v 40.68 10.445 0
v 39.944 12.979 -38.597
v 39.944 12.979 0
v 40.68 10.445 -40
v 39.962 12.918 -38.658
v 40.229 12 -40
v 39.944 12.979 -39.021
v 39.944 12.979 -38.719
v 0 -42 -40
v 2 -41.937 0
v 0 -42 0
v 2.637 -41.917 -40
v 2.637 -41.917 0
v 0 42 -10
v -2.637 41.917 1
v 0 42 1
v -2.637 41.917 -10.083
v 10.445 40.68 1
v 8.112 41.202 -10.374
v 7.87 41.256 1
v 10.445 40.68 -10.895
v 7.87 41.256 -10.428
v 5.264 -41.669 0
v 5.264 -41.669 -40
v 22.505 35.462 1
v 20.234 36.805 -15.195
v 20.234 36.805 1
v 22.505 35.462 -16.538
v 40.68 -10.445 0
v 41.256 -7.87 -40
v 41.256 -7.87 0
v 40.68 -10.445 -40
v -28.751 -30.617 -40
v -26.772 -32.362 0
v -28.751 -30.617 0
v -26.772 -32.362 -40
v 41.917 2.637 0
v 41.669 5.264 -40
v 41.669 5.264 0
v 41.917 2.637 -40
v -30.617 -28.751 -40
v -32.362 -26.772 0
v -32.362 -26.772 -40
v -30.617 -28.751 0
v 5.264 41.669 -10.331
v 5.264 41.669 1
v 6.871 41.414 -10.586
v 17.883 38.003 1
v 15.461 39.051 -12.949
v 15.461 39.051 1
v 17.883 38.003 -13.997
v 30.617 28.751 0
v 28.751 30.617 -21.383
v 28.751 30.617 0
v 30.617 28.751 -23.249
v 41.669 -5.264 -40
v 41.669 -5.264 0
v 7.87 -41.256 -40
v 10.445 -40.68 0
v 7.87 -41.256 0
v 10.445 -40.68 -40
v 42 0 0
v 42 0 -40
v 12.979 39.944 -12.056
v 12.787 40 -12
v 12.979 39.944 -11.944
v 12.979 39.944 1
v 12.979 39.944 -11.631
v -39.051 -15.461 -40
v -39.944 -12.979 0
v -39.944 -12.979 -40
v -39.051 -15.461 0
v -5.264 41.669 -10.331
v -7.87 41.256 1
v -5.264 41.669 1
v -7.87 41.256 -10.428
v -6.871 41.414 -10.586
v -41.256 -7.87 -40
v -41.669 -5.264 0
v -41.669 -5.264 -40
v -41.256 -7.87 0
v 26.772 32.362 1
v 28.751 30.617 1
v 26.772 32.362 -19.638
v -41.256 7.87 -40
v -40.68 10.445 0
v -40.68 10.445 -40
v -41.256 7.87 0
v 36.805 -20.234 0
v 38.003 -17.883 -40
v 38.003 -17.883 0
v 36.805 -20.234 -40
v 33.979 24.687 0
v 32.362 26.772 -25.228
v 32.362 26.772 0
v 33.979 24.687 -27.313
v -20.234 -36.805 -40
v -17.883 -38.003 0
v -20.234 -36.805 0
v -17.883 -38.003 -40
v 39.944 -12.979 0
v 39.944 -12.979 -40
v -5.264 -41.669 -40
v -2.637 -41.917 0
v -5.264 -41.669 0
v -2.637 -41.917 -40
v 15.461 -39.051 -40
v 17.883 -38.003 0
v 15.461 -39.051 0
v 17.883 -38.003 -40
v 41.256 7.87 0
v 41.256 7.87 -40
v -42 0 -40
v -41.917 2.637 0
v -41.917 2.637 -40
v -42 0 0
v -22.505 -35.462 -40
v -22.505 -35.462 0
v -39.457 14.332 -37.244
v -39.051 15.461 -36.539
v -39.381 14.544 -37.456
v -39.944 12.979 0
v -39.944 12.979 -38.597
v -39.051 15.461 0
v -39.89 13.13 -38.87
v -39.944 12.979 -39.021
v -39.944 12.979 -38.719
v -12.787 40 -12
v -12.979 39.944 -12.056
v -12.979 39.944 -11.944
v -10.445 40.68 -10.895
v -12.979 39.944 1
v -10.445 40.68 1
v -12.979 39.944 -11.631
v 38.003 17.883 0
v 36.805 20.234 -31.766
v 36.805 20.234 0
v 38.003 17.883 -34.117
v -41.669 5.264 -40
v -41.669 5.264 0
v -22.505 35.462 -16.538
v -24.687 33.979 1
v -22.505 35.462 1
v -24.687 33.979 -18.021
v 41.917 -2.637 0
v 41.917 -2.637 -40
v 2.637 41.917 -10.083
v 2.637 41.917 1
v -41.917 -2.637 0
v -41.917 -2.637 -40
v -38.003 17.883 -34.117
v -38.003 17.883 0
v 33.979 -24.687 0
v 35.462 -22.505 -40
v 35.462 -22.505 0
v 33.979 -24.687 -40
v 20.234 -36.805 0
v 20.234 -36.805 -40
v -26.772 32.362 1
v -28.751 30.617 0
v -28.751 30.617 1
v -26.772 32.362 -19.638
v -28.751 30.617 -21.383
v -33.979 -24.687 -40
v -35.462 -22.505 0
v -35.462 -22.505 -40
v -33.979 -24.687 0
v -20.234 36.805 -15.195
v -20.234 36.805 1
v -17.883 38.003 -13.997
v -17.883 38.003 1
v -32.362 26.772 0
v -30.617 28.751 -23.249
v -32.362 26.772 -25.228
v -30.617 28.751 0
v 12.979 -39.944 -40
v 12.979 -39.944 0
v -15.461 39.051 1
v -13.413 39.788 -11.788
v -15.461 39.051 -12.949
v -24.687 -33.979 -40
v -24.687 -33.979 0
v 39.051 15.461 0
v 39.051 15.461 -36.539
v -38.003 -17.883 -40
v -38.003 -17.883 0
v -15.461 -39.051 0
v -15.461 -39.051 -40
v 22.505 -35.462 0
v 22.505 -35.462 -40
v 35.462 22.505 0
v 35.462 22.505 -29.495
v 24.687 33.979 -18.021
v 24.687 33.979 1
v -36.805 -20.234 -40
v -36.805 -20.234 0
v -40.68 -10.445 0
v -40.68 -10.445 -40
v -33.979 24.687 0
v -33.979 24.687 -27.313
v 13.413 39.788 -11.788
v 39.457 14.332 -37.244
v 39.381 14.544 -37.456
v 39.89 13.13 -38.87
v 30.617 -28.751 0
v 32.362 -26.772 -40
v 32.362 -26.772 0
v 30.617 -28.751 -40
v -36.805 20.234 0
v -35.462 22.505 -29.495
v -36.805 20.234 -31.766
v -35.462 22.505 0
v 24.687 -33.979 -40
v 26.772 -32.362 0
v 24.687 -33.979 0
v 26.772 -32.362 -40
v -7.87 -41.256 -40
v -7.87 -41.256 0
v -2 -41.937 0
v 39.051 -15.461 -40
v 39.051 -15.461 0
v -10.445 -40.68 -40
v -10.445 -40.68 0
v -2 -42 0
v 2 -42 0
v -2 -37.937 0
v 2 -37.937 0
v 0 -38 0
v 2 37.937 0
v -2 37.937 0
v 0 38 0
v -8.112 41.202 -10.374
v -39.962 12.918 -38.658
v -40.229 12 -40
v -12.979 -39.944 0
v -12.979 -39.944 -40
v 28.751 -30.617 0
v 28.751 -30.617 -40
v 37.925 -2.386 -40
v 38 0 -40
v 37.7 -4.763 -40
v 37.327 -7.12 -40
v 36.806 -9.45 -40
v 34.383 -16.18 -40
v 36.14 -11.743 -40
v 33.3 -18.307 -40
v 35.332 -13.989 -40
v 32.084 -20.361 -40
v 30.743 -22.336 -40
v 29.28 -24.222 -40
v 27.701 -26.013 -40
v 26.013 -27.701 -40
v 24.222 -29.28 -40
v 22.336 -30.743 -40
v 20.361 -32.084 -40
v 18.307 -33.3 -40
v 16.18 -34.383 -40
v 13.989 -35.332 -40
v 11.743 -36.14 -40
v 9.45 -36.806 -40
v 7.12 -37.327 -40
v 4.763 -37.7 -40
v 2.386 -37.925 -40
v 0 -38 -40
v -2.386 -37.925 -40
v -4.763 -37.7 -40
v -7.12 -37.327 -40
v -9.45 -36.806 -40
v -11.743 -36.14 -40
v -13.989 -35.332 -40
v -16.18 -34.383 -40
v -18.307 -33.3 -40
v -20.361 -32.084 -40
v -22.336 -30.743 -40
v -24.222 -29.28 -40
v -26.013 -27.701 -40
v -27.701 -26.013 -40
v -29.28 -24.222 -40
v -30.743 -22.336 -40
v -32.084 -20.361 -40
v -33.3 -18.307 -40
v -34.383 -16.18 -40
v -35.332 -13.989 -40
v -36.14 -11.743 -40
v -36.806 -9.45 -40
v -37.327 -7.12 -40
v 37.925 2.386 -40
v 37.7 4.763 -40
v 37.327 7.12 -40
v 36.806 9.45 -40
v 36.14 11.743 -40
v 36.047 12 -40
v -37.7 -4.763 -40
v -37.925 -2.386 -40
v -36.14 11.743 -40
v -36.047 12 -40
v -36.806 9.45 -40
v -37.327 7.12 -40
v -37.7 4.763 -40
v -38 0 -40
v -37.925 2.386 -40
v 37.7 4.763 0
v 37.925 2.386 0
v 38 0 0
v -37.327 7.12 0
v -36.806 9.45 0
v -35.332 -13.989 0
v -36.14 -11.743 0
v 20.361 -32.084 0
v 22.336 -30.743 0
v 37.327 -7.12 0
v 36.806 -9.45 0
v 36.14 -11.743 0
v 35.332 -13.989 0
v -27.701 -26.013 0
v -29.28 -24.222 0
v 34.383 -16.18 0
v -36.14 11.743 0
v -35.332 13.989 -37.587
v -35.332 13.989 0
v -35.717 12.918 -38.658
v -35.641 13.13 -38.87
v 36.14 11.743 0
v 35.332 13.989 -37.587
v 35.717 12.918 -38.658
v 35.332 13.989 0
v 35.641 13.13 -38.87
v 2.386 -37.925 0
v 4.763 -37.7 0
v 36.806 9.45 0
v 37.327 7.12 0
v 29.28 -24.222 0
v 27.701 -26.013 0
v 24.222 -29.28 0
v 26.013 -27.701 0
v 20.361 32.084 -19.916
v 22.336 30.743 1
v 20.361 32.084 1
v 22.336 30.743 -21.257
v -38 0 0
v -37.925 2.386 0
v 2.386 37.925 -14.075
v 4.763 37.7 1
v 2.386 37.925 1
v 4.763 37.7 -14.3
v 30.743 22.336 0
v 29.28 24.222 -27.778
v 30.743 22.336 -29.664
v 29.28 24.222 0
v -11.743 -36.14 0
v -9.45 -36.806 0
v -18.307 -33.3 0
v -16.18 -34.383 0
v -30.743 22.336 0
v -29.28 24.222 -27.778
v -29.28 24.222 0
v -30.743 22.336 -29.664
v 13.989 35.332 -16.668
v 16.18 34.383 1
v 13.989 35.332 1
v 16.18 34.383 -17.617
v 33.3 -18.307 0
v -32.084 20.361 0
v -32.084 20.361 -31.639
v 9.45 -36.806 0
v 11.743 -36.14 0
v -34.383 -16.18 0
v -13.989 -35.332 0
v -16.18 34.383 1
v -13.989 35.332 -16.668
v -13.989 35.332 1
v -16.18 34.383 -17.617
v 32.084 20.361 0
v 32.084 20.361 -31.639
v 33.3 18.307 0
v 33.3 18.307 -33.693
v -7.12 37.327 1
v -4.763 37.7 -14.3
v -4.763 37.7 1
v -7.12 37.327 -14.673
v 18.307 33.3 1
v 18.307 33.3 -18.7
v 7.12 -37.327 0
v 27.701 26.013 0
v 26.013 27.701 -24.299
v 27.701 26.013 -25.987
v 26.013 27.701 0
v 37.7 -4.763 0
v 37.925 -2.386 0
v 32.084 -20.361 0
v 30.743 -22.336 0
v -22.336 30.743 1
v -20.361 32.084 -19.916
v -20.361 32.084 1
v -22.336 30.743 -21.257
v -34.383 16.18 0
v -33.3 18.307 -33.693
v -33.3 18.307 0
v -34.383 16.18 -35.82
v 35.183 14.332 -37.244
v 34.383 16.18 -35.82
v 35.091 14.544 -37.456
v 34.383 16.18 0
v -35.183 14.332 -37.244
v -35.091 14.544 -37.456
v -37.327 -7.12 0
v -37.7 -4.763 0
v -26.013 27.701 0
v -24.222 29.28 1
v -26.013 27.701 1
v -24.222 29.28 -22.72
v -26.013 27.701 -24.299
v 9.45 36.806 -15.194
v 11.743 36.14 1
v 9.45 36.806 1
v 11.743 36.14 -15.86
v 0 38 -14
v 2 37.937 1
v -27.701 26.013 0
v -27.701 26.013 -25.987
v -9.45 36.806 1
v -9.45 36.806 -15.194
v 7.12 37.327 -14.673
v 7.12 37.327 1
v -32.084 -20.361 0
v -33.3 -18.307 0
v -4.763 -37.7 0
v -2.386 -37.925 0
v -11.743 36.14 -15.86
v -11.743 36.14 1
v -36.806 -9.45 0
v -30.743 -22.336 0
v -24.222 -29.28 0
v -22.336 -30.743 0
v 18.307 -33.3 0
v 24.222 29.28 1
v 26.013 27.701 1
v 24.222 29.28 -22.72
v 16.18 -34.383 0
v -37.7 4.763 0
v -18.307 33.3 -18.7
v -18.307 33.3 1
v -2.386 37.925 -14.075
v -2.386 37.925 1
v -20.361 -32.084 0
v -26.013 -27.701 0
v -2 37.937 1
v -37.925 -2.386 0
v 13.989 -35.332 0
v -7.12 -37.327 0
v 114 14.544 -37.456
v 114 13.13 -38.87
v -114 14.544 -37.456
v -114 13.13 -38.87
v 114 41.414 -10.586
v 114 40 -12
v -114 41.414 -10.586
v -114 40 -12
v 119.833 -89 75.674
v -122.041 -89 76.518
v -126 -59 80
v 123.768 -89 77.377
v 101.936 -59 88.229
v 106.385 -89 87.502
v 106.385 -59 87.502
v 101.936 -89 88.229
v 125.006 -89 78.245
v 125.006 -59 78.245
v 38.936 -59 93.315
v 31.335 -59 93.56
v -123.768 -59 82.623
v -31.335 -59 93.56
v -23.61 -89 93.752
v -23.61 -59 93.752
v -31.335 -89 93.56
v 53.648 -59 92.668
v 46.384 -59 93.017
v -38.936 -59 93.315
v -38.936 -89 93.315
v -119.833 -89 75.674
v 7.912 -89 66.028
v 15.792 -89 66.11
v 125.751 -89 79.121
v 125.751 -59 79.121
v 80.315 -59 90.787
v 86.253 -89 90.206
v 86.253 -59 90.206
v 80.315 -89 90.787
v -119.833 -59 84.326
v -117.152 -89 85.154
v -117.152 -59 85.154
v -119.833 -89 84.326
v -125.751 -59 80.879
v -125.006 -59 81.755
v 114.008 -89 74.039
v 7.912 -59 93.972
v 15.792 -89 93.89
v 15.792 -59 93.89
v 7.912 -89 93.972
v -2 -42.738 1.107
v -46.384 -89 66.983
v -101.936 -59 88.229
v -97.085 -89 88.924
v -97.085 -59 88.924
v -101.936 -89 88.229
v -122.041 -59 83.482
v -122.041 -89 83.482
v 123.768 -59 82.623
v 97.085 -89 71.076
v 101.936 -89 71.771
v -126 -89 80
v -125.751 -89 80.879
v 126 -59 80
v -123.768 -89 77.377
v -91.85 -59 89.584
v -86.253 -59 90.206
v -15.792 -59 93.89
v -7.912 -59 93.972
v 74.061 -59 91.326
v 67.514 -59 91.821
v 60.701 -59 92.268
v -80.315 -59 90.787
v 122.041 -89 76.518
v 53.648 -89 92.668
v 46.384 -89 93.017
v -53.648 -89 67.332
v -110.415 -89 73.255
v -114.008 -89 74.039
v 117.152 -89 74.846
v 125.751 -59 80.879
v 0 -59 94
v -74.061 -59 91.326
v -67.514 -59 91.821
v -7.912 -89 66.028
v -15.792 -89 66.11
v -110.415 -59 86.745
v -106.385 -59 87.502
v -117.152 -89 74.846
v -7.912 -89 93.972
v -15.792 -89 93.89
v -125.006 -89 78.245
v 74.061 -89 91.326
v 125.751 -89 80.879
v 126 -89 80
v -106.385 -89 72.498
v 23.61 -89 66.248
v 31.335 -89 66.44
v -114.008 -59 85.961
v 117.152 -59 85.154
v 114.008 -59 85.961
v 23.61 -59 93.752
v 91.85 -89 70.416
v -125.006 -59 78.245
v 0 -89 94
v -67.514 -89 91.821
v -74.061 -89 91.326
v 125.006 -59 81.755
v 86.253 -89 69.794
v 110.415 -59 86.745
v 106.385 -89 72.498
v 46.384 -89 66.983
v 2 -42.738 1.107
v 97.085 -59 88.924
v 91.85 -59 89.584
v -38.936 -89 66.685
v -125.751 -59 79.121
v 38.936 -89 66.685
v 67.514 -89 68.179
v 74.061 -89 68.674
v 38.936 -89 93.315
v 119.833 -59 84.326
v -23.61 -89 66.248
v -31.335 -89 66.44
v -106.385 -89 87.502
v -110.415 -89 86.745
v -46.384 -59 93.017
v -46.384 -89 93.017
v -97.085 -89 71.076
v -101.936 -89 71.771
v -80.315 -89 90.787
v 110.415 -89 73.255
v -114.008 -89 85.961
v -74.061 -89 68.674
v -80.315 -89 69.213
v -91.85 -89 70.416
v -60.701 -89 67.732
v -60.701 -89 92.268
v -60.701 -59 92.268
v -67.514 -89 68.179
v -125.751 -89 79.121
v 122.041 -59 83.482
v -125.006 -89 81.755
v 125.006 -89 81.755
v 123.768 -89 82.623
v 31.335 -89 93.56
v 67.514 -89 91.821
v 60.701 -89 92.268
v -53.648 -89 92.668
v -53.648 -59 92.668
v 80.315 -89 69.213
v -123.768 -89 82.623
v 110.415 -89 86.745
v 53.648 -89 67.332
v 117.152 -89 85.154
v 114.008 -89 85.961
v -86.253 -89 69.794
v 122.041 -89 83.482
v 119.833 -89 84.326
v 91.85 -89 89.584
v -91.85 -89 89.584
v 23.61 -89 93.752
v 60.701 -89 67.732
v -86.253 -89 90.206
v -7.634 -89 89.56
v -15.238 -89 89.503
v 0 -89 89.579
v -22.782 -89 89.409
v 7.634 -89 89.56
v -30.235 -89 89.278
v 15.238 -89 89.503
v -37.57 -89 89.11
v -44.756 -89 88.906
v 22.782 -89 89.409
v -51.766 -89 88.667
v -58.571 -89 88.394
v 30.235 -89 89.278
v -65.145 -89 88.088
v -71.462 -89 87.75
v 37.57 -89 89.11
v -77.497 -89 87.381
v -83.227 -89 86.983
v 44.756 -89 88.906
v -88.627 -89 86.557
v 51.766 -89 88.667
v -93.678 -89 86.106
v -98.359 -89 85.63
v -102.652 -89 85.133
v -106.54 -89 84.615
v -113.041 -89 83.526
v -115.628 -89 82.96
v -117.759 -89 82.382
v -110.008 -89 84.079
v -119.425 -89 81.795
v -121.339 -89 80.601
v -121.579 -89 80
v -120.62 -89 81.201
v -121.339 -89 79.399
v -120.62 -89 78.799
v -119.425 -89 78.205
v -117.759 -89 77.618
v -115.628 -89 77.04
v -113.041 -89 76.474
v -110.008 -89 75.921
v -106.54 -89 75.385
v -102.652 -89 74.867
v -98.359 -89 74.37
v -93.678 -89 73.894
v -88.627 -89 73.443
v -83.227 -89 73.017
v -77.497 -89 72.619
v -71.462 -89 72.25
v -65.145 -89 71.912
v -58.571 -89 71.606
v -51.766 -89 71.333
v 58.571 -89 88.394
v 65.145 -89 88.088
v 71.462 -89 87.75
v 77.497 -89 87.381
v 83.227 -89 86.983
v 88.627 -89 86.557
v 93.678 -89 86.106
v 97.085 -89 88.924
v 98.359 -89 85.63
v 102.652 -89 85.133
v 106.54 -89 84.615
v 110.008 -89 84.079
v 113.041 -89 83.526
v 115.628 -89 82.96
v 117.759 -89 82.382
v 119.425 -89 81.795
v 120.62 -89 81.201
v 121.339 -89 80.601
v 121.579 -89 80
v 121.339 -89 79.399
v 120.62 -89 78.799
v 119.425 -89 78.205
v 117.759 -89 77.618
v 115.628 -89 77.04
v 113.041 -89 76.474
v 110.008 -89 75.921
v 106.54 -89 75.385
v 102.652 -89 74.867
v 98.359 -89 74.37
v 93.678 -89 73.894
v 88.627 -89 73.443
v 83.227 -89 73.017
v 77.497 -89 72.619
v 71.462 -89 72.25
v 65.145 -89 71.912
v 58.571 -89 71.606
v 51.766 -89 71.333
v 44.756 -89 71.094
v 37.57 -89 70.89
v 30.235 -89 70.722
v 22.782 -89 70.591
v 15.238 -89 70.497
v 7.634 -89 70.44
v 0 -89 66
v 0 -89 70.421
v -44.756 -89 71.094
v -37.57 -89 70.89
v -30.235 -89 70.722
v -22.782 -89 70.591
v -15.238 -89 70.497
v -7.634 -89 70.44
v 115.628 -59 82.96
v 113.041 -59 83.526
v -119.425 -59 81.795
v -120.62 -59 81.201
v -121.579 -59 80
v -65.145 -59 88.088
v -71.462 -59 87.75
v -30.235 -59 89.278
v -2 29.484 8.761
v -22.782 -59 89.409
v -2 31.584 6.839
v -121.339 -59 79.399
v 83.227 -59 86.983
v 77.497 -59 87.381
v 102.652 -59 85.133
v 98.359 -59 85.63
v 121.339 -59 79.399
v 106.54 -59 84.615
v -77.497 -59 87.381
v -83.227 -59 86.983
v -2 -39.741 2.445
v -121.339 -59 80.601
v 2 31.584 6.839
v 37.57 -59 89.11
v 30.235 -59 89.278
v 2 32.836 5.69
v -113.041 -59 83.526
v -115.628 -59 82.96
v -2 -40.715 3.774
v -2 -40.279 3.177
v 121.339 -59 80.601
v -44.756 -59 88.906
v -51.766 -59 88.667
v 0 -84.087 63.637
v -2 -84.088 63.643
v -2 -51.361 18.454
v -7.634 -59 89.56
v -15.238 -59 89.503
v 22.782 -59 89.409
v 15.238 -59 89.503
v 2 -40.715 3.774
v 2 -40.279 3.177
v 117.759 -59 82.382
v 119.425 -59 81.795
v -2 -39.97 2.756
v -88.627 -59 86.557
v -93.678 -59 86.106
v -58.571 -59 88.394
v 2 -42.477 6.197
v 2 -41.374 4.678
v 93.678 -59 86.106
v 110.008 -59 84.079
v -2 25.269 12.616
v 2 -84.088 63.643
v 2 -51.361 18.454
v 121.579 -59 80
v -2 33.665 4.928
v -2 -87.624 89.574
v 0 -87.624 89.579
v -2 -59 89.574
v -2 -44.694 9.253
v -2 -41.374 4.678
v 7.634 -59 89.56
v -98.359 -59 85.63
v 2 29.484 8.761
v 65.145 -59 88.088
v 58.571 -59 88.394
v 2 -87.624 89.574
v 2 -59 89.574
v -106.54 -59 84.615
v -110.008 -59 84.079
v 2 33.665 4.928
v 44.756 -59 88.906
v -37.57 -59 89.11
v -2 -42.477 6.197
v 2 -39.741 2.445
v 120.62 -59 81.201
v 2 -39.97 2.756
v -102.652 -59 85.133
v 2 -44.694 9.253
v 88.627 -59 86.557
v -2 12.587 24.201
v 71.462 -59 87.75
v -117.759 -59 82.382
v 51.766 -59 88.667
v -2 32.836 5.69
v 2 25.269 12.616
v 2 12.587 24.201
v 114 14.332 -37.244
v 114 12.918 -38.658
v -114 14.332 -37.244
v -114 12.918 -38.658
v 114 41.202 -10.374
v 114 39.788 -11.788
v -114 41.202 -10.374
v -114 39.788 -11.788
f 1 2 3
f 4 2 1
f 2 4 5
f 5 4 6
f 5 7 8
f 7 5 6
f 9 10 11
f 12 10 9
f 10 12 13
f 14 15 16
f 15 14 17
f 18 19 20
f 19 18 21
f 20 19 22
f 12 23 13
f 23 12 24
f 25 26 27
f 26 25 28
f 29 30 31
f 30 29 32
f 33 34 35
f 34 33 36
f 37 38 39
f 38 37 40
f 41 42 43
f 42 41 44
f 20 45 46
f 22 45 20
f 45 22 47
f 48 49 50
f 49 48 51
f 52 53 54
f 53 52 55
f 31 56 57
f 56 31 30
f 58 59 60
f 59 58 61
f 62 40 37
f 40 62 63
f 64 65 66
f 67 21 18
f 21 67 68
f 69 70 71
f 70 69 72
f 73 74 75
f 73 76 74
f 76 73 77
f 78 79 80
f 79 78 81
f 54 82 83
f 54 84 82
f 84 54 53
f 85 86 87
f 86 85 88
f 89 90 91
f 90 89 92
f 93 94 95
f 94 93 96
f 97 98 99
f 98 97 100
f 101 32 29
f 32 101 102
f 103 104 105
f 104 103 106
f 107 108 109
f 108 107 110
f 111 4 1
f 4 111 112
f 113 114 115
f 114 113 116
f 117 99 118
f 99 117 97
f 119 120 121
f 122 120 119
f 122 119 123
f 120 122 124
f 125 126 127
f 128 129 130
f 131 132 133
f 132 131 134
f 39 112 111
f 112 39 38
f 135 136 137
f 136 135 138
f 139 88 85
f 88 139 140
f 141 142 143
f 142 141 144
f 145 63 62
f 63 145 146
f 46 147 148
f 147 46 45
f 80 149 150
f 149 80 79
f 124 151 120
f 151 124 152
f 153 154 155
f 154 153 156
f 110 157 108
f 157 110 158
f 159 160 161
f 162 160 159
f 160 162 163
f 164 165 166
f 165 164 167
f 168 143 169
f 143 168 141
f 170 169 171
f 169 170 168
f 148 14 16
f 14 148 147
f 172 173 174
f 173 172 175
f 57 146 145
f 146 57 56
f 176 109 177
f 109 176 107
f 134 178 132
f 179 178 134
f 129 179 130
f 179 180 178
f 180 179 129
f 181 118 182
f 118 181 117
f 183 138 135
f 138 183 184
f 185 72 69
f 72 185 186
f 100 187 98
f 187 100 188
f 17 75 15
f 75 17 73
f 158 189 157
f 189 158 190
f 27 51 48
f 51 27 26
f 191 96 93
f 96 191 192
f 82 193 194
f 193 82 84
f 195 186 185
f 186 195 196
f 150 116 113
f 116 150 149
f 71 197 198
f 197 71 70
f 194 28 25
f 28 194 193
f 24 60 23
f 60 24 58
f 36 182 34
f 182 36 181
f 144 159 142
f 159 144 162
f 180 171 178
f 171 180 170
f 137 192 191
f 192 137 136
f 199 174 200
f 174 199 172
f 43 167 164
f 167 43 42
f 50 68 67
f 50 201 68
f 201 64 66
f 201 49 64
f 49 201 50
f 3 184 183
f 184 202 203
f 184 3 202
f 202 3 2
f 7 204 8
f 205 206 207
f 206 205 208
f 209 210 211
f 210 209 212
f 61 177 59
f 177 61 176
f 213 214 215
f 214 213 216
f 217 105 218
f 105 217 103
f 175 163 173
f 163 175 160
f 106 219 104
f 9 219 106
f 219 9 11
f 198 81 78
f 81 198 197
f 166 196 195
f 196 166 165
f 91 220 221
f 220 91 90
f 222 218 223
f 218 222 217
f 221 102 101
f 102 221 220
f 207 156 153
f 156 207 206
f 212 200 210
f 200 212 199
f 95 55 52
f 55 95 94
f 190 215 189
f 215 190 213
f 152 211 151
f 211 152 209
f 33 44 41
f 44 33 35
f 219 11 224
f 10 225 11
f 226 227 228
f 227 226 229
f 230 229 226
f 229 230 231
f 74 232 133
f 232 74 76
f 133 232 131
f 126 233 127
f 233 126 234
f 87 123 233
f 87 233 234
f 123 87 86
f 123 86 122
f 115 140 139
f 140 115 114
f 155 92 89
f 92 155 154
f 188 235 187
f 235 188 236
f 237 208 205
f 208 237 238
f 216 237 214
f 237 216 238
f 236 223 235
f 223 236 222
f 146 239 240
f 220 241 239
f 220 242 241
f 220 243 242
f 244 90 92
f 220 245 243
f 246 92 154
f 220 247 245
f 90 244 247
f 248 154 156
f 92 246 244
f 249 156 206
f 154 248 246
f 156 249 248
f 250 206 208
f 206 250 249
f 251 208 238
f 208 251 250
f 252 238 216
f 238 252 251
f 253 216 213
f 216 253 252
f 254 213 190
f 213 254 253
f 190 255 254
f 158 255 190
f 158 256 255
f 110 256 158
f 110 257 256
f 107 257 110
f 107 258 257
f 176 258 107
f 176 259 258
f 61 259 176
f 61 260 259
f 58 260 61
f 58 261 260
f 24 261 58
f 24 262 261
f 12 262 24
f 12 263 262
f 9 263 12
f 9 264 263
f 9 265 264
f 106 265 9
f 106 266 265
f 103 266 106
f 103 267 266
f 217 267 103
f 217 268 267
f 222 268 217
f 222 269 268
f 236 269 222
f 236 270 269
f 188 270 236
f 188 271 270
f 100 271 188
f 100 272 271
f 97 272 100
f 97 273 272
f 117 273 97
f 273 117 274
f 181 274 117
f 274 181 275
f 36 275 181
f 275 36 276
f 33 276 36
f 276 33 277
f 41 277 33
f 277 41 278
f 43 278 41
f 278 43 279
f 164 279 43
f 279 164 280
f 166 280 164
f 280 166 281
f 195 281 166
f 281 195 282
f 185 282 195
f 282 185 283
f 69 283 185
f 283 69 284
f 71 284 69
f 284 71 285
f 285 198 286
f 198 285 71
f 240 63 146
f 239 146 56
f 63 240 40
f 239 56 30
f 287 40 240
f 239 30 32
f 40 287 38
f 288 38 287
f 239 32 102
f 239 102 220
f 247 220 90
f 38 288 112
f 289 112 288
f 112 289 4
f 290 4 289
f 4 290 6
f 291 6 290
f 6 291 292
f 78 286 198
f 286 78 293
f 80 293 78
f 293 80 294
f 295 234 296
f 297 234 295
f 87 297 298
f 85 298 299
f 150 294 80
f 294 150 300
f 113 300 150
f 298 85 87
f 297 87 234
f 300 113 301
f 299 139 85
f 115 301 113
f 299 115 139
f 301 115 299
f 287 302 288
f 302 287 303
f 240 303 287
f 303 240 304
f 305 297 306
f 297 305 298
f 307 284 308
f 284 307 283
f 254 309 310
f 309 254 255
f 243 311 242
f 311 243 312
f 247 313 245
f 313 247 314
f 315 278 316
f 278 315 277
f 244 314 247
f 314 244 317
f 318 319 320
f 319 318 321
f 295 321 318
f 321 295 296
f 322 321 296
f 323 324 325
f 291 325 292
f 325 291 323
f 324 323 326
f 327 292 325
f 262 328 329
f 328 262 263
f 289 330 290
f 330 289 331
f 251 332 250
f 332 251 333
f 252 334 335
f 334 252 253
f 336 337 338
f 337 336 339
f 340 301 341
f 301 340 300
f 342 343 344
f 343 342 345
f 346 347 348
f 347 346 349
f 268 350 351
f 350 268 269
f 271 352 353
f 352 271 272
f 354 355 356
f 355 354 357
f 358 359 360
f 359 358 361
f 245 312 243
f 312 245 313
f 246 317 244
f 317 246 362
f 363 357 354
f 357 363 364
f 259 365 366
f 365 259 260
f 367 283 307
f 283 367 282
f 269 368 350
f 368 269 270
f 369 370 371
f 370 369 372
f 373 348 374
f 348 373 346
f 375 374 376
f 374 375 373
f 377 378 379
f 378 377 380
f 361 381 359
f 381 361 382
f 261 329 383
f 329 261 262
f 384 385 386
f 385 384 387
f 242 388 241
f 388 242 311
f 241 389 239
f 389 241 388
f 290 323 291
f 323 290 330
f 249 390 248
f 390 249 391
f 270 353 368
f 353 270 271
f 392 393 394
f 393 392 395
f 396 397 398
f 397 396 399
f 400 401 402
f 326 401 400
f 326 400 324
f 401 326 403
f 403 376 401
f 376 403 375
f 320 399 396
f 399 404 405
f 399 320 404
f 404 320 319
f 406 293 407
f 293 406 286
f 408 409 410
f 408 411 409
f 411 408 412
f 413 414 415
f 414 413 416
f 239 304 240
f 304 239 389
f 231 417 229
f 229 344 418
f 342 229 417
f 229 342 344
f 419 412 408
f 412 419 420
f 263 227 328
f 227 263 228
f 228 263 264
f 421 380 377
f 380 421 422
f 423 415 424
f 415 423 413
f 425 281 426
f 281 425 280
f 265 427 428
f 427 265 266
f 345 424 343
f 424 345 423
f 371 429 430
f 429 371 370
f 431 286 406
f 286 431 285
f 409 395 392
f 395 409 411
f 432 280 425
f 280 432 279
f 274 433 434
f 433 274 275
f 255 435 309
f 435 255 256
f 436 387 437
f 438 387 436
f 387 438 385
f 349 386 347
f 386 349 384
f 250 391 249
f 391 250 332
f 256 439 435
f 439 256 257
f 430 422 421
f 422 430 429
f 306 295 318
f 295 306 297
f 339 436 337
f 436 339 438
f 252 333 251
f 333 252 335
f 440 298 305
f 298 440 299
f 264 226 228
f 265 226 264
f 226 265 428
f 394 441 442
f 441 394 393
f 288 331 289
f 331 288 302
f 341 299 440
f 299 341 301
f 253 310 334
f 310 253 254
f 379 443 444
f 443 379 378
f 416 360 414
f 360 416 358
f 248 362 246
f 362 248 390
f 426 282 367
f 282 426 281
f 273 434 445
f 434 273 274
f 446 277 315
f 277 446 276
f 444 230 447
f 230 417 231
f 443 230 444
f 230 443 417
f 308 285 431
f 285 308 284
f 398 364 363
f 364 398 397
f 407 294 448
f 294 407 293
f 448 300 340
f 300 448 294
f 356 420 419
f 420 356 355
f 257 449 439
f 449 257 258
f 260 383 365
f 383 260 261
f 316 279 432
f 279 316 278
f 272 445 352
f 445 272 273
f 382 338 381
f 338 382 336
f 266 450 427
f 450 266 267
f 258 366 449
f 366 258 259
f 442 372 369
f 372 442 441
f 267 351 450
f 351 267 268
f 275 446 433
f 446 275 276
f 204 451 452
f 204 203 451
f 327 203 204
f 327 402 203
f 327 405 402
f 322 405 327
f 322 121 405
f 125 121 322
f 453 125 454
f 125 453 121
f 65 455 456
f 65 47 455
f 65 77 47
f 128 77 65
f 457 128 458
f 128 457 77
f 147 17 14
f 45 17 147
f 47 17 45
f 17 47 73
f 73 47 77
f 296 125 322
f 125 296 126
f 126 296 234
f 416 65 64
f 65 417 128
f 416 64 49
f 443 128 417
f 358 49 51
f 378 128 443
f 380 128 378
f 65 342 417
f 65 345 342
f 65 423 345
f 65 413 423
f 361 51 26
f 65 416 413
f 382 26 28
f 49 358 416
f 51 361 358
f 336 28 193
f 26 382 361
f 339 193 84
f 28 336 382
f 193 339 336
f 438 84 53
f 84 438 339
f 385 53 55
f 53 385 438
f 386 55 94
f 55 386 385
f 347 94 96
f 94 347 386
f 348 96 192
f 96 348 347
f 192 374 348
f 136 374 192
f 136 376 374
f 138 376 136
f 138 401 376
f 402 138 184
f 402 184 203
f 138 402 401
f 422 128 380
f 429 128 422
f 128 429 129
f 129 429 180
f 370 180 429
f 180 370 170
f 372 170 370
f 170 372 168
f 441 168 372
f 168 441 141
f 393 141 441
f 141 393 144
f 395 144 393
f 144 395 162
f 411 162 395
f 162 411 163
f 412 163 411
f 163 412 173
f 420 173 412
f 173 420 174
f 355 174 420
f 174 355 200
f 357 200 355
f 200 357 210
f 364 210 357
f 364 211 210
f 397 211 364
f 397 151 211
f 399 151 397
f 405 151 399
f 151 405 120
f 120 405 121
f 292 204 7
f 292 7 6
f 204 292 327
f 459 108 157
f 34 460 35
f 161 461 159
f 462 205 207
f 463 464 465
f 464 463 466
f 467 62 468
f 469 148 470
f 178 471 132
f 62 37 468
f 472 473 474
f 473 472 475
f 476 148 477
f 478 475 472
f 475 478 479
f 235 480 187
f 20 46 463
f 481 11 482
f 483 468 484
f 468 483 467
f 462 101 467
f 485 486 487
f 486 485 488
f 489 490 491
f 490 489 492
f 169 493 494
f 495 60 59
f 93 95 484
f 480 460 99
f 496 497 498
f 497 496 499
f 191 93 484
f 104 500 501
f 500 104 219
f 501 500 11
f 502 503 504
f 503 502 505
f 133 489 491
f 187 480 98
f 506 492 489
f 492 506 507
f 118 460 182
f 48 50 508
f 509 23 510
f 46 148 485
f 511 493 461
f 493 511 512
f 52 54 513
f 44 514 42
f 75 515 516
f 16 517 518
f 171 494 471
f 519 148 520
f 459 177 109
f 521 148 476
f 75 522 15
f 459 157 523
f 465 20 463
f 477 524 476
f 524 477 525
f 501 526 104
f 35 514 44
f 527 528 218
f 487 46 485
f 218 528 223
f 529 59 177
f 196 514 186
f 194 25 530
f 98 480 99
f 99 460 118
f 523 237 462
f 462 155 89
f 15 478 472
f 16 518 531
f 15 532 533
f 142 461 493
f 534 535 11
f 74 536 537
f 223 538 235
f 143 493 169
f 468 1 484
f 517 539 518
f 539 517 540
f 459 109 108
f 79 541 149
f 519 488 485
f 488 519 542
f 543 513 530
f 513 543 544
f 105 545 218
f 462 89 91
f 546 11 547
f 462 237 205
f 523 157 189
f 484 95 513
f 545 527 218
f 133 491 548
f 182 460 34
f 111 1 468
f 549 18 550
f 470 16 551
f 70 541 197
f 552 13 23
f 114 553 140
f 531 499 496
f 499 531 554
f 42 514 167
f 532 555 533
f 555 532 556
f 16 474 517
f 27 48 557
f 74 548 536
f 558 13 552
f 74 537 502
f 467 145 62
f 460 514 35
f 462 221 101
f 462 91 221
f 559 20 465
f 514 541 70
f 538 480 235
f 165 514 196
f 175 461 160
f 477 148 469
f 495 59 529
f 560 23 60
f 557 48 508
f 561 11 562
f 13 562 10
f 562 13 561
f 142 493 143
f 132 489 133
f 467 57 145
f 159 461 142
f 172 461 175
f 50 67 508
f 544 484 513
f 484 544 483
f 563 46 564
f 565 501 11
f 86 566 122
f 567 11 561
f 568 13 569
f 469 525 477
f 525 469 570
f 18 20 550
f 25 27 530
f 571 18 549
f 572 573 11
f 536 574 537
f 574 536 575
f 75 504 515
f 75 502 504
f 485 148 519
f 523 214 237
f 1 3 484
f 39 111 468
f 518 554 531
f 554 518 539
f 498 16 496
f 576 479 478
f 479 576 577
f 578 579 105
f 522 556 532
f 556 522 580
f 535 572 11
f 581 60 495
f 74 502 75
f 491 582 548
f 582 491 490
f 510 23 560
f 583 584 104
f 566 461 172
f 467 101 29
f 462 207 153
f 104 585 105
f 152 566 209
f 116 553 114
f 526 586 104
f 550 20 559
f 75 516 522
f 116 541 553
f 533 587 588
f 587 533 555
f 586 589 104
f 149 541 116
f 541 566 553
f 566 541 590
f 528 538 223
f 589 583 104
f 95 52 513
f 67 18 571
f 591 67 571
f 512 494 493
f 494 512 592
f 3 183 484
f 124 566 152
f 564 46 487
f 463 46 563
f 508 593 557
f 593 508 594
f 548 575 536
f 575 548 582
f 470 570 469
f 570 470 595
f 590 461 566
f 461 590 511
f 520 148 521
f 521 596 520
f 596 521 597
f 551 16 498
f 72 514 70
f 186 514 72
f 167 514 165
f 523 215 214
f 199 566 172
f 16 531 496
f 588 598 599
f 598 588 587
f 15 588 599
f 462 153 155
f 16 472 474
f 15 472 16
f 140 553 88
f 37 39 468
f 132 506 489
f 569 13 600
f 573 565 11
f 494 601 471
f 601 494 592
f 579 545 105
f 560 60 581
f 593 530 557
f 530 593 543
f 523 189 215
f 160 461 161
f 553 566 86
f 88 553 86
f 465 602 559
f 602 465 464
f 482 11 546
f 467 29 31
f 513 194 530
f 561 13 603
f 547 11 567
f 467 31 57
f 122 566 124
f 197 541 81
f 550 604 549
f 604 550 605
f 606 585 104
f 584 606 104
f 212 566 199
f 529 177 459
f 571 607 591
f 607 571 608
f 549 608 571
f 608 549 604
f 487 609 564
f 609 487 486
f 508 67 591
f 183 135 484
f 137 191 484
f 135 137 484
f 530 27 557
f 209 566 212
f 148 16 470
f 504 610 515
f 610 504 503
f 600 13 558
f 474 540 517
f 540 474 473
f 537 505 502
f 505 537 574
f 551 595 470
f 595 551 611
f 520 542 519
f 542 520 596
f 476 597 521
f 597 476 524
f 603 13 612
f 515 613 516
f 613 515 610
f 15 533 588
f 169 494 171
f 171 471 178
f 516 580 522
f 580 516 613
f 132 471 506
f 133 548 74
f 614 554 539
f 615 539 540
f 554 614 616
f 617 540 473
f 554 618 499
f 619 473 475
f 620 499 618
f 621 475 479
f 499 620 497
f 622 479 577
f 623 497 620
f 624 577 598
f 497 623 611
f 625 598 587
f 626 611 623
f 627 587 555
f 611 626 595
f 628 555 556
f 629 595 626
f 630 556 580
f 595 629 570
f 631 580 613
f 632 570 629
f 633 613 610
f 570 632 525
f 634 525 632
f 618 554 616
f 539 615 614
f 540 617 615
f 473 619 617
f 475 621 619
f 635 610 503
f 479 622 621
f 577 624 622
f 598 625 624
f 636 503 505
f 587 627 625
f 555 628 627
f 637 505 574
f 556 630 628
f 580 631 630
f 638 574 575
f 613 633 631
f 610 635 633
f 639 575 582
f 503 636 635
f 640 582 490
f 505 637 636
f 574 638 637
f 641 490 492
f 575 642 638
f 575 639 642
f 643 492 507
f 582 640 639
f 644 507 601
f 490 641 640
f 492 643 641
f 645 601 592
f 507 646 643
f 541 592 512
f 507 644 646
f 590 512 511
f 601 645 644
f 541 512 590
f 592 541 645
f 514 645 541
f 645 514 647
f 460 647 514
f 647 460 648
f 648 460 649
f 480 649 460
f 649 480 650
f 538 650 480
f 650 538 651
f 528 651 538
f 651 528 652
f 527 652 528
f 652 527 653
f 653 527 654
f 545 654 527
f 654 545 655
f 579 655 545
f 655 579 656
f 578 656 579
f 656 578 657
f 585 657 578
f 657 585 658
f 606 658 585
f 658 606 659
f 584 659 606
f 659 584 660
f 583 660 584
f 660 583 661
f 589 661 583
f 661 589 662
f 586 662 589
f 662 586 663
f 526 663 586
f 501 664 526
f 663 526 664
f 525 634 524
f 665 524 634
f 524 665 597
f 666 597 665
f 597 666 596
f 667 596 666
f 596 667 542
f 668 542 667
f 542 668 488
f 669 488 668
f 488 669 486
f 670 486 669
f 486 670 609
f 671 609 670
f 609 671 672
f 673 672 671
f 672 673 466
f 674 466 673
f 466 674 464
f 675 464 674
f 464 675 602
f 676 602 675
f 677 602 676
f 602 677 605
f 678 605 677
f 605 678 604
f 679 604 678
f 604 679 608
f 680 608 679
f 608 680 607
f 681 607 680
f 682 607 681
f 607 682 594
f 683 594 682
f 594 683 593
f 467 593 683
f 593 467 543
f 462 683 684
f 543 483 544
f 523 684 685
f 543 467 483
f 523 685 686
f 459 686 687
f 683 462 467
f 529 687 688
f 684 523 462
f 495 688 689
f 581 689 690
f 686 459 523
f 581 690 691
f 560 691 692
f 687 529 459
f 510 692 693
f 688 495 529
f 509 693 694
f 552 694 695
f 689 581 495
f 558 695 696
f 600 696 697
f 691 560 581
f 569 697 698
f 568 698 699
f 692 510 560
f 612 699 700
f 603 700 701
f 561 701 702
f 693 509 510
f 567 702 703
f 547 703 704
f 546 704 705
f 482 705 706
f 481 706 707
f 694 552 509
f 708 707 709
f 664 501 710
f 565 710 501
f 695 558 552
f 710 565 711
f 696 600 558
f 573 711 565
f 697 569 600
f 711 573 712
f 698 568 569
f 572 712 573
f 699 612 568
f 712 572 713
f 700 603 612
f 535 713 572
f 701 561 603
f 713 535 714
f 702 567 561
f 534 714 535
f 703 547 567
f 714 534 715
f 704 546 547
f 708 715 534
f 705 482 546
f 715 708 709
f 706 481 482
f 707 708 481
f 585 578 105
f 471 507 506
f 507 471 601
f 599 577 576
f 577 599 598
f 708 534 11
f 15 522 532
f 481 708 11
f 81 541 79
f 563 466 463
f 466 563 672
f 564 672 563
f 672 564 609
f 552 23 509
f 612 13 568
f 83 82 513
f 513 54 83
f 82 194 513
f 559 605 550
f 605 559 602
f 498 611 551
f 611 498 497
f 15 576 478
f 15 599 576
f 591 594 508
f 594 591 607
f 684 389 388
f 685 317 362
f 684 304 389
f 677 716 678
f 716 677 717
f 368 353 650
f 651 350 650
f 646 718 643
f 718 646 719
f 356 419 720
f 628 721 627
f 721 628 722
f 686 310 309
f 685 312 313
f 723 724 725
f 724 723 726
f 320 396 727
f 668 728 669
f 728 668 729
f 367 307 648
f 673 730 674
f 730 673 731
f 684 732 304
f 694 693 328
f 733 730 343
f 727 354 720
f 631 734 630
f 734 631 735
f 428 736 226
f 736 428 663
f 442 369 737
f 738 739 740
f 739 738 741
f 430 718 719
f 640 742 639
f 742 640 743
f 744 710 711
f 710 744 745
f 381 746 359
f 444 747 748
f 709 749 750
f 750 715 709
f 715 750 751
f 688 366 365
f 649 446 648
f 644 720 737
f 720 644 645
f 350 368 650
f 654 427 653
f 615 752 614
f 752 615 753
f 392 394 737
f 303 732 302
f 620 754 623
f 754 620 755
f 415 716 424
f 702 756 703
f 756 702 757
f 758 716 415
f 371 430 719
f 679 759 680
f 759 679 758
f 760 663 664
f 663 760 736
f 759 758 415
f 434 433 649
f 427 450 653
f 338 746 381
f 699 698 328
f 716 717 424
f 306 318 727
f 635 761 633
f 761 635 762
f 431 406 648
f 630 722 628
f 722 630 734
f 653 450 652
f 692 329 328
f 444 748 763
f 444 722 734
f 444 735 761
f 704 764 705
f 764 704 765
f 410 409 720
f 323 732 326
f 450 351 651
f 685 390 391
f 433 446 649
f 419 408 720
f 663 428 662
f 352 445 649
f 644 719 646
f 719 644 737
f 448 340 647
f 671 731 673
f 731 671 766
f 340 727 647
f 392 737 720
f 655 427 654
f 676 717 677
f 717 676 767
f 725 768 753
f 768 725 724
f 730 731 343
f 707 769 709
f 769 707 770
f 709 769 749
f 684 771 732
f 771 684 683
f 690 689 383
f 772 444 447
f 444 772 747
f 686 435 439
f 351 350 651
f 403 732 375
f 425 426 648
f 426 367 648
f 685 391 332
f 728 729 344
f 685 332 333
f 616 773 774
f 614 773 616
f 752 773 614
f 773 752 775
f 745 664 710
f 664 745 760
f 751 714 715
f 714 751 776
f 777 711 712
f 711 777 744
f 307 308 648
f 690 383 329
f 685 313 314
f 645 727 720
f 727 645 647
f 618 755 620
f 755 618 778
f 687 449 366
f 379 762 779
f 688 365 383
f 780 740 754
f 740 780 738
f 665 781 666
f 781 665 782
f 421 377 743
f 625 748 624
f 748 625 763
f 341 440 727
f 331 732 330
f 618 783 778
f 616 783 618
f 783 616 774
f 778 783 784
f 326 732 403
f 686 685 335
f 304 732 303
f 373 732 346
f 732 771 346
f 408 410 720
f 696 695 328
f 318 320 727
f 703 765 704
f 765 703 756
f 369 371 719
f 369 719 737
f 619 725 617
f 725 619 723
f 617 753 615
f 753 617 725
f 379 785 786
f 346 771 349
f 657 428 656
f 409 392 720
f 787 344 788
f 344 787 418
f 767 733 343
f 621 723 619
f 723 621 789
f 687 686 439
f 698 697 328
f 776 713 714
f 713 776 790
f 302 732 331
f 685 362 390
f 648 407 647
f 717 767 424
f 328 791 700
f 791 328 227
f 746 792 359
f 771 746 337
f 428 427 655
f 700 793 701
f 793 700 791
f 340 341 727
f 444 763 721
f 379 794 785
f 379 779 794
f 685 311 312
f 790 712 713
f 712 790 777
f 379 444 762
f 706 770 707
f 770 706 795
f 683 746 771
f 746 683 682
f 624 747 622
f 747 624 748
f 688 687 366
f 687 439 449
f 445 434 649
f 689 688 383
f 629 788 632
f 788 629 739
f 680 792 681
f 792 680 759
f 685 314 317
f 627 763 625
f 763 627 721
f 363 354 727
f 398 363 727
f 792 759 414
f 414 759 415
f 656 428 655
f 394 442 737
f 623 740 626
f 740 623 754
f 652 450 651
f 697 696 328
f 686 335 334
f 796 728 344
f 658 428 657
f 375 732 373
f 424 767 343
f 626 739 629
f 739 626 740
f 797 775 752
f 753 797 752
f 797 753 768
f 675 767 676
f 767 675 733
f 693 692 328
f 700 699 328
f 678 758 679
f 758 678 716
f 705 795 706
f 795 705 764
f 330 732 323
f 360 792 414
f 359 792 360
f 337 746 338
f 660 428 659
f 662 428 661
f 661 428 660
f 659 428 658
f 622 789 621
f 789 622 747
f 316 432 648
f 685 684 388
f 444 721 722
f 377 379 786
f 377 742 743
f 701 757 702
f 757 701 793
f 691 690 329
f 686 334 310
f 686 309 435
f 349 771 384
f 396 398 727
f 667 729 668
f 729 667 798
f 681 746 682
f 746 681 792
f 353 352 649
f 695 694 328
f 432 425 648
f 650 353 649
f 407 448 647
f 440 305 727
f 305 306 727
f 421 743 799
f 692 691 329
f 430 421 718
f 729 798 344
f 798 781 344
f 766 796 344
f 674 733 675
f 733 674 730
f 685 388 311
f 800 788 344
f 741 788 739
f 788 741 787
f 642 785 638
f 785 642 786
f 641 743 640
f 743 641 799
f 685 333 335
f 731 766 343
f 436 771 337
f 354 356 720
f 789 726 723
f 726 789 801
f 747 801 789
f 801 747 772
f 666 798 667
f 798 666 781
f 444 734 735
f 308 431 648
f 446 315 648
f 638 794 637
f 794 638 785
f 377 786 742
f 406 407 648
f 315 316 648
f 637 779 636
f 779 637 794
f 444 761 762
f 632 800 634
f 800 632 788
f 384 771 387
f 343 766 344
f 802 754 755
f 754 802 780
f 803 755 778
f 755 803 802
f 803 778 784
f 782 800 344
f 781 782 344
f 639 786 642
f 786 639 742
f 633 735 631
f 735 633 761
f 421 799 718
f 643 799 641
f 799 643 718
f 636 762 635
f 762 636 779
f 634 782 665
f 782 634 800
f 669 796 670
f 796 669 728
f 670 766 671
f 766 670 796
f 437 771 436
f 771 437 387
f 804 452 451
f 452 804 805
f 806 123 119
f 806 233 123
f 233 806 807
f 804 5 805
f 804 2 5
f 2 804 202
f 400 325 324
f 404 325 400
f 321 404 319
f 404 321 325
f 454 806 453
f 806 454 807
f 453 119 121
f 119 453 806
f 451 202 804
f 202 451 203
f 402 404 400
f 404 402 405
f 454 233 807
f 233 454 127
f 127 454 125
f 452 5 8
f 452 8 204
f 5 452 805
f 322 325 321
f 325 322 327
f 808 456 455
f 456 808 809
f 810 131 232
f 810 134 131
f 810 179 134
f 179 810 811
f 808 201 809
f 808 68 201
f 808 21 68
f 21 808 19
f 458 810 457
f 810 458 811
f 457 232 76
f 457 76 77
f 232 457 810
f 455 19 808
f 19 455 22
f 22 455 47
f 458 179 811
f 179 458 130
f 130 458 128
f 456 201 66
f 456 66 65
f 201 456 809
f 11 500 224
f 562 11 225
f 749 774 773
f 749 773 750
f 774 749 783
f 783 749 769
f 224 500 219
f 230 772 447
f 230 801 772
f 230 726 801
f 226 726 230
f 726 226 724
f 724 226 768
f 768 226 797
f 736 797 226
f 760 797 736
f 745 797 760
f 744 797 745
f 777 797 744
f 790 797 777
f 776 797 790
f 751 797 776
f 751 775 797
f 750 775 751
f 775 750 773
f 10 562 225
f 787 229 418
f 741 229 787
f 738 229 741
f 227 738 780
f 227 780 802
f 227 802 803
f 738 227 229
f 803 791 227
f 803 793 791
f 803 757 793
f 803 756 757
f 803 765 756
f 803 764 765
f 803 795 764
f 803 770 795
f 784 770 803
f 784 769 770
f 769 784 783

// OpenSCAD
pipeOD = 76;
minPipeOverlap = 10;
pipeOverlap = 40;
wallThickness = 4;
faceDepth = 30;
faceSquashFactor = 3;
faceForward = 10;
$fn=100;

difference() {
    // outer shell from the top of the pipe to the face
    hull() {
        cylinder(h = 1, r = pipeOD/2+wallThickness);
        
        rotate([90,0,0])
        translate([0,80,faceDepth+pipeOD/4+faceForward])
        scale([faceSquashFactor, 1/faceSquashFactor, 1])
        cylinder(h=faceDepth, r=pipeOD/2+wallThickness);
    }

    // inner shell for the airflow path
    hull() {
        cylinder(h = 1, r = pipeOD/2);
        
        rotate([90,0,0])
        translate([0,80,faceDepth+pipeOD/4+faceForward])
        scale([faceSquashFactor*(pipeOD/2-wallThickness/faceSquashFactor)/(pipeOD/2), 1/faceSquashFactor*(pipeOD/2-wallThickness*faceSquashFactor)/(pipeOD/2), 1])
        cylinder(h=faceDepth, r=pipeOD/2+wallThickness);
    }
};

// angled base for 3d printing and pipe connection
difference() {
    translate([0,0,-pipeOverlap])
    difference() {
        cylinder(h = pipeOverlap, r = pipeOD/2+wallThickness);
        cylinder(h = pipeOverlap, r = pipeOD/2);
    }

    translate([0, pipeOD/2+wallThickness, -minPipeOverlap])
    rotate([-45,0,0])
    translate([-pipeOD,0,-pipeOD*2])
    cube(pipeOD*2);
    
}


// internal brace to keep the face from squashing
hull() {
translate([-wallThickness/2, -pipeOD/2, 0])
cube([wallThickness, pipeOD, 1]);

translate([-wallThickness/2,-80-wallThickness, faceDepth+pipeOD/4+faceForward+pipeOD/faceSquashFactor+wallThickness])
cube([wallThickness, faceDepth, 1]);
    translate([-wallThickness/2,-80-wallThickness, faceDepth+pipeOD/4+faceForward+wallThickness])
cube([wallThickness, faceDepth, 1]);
    
}


// base lines to get a better grab on the bed
translate([0,pipeOD/2+wallThickness-2,-minPipeOverlap-2])
rotate([45,0,0]) {
translate([-pipeOD*1.5, -pipeOD/2,0])
cube([pipeOD*3, 2, 0.3]);

translate([-pipeOD*1.5, 0,0])
cube([pipeOD*3, 2, 0.3]);
}
